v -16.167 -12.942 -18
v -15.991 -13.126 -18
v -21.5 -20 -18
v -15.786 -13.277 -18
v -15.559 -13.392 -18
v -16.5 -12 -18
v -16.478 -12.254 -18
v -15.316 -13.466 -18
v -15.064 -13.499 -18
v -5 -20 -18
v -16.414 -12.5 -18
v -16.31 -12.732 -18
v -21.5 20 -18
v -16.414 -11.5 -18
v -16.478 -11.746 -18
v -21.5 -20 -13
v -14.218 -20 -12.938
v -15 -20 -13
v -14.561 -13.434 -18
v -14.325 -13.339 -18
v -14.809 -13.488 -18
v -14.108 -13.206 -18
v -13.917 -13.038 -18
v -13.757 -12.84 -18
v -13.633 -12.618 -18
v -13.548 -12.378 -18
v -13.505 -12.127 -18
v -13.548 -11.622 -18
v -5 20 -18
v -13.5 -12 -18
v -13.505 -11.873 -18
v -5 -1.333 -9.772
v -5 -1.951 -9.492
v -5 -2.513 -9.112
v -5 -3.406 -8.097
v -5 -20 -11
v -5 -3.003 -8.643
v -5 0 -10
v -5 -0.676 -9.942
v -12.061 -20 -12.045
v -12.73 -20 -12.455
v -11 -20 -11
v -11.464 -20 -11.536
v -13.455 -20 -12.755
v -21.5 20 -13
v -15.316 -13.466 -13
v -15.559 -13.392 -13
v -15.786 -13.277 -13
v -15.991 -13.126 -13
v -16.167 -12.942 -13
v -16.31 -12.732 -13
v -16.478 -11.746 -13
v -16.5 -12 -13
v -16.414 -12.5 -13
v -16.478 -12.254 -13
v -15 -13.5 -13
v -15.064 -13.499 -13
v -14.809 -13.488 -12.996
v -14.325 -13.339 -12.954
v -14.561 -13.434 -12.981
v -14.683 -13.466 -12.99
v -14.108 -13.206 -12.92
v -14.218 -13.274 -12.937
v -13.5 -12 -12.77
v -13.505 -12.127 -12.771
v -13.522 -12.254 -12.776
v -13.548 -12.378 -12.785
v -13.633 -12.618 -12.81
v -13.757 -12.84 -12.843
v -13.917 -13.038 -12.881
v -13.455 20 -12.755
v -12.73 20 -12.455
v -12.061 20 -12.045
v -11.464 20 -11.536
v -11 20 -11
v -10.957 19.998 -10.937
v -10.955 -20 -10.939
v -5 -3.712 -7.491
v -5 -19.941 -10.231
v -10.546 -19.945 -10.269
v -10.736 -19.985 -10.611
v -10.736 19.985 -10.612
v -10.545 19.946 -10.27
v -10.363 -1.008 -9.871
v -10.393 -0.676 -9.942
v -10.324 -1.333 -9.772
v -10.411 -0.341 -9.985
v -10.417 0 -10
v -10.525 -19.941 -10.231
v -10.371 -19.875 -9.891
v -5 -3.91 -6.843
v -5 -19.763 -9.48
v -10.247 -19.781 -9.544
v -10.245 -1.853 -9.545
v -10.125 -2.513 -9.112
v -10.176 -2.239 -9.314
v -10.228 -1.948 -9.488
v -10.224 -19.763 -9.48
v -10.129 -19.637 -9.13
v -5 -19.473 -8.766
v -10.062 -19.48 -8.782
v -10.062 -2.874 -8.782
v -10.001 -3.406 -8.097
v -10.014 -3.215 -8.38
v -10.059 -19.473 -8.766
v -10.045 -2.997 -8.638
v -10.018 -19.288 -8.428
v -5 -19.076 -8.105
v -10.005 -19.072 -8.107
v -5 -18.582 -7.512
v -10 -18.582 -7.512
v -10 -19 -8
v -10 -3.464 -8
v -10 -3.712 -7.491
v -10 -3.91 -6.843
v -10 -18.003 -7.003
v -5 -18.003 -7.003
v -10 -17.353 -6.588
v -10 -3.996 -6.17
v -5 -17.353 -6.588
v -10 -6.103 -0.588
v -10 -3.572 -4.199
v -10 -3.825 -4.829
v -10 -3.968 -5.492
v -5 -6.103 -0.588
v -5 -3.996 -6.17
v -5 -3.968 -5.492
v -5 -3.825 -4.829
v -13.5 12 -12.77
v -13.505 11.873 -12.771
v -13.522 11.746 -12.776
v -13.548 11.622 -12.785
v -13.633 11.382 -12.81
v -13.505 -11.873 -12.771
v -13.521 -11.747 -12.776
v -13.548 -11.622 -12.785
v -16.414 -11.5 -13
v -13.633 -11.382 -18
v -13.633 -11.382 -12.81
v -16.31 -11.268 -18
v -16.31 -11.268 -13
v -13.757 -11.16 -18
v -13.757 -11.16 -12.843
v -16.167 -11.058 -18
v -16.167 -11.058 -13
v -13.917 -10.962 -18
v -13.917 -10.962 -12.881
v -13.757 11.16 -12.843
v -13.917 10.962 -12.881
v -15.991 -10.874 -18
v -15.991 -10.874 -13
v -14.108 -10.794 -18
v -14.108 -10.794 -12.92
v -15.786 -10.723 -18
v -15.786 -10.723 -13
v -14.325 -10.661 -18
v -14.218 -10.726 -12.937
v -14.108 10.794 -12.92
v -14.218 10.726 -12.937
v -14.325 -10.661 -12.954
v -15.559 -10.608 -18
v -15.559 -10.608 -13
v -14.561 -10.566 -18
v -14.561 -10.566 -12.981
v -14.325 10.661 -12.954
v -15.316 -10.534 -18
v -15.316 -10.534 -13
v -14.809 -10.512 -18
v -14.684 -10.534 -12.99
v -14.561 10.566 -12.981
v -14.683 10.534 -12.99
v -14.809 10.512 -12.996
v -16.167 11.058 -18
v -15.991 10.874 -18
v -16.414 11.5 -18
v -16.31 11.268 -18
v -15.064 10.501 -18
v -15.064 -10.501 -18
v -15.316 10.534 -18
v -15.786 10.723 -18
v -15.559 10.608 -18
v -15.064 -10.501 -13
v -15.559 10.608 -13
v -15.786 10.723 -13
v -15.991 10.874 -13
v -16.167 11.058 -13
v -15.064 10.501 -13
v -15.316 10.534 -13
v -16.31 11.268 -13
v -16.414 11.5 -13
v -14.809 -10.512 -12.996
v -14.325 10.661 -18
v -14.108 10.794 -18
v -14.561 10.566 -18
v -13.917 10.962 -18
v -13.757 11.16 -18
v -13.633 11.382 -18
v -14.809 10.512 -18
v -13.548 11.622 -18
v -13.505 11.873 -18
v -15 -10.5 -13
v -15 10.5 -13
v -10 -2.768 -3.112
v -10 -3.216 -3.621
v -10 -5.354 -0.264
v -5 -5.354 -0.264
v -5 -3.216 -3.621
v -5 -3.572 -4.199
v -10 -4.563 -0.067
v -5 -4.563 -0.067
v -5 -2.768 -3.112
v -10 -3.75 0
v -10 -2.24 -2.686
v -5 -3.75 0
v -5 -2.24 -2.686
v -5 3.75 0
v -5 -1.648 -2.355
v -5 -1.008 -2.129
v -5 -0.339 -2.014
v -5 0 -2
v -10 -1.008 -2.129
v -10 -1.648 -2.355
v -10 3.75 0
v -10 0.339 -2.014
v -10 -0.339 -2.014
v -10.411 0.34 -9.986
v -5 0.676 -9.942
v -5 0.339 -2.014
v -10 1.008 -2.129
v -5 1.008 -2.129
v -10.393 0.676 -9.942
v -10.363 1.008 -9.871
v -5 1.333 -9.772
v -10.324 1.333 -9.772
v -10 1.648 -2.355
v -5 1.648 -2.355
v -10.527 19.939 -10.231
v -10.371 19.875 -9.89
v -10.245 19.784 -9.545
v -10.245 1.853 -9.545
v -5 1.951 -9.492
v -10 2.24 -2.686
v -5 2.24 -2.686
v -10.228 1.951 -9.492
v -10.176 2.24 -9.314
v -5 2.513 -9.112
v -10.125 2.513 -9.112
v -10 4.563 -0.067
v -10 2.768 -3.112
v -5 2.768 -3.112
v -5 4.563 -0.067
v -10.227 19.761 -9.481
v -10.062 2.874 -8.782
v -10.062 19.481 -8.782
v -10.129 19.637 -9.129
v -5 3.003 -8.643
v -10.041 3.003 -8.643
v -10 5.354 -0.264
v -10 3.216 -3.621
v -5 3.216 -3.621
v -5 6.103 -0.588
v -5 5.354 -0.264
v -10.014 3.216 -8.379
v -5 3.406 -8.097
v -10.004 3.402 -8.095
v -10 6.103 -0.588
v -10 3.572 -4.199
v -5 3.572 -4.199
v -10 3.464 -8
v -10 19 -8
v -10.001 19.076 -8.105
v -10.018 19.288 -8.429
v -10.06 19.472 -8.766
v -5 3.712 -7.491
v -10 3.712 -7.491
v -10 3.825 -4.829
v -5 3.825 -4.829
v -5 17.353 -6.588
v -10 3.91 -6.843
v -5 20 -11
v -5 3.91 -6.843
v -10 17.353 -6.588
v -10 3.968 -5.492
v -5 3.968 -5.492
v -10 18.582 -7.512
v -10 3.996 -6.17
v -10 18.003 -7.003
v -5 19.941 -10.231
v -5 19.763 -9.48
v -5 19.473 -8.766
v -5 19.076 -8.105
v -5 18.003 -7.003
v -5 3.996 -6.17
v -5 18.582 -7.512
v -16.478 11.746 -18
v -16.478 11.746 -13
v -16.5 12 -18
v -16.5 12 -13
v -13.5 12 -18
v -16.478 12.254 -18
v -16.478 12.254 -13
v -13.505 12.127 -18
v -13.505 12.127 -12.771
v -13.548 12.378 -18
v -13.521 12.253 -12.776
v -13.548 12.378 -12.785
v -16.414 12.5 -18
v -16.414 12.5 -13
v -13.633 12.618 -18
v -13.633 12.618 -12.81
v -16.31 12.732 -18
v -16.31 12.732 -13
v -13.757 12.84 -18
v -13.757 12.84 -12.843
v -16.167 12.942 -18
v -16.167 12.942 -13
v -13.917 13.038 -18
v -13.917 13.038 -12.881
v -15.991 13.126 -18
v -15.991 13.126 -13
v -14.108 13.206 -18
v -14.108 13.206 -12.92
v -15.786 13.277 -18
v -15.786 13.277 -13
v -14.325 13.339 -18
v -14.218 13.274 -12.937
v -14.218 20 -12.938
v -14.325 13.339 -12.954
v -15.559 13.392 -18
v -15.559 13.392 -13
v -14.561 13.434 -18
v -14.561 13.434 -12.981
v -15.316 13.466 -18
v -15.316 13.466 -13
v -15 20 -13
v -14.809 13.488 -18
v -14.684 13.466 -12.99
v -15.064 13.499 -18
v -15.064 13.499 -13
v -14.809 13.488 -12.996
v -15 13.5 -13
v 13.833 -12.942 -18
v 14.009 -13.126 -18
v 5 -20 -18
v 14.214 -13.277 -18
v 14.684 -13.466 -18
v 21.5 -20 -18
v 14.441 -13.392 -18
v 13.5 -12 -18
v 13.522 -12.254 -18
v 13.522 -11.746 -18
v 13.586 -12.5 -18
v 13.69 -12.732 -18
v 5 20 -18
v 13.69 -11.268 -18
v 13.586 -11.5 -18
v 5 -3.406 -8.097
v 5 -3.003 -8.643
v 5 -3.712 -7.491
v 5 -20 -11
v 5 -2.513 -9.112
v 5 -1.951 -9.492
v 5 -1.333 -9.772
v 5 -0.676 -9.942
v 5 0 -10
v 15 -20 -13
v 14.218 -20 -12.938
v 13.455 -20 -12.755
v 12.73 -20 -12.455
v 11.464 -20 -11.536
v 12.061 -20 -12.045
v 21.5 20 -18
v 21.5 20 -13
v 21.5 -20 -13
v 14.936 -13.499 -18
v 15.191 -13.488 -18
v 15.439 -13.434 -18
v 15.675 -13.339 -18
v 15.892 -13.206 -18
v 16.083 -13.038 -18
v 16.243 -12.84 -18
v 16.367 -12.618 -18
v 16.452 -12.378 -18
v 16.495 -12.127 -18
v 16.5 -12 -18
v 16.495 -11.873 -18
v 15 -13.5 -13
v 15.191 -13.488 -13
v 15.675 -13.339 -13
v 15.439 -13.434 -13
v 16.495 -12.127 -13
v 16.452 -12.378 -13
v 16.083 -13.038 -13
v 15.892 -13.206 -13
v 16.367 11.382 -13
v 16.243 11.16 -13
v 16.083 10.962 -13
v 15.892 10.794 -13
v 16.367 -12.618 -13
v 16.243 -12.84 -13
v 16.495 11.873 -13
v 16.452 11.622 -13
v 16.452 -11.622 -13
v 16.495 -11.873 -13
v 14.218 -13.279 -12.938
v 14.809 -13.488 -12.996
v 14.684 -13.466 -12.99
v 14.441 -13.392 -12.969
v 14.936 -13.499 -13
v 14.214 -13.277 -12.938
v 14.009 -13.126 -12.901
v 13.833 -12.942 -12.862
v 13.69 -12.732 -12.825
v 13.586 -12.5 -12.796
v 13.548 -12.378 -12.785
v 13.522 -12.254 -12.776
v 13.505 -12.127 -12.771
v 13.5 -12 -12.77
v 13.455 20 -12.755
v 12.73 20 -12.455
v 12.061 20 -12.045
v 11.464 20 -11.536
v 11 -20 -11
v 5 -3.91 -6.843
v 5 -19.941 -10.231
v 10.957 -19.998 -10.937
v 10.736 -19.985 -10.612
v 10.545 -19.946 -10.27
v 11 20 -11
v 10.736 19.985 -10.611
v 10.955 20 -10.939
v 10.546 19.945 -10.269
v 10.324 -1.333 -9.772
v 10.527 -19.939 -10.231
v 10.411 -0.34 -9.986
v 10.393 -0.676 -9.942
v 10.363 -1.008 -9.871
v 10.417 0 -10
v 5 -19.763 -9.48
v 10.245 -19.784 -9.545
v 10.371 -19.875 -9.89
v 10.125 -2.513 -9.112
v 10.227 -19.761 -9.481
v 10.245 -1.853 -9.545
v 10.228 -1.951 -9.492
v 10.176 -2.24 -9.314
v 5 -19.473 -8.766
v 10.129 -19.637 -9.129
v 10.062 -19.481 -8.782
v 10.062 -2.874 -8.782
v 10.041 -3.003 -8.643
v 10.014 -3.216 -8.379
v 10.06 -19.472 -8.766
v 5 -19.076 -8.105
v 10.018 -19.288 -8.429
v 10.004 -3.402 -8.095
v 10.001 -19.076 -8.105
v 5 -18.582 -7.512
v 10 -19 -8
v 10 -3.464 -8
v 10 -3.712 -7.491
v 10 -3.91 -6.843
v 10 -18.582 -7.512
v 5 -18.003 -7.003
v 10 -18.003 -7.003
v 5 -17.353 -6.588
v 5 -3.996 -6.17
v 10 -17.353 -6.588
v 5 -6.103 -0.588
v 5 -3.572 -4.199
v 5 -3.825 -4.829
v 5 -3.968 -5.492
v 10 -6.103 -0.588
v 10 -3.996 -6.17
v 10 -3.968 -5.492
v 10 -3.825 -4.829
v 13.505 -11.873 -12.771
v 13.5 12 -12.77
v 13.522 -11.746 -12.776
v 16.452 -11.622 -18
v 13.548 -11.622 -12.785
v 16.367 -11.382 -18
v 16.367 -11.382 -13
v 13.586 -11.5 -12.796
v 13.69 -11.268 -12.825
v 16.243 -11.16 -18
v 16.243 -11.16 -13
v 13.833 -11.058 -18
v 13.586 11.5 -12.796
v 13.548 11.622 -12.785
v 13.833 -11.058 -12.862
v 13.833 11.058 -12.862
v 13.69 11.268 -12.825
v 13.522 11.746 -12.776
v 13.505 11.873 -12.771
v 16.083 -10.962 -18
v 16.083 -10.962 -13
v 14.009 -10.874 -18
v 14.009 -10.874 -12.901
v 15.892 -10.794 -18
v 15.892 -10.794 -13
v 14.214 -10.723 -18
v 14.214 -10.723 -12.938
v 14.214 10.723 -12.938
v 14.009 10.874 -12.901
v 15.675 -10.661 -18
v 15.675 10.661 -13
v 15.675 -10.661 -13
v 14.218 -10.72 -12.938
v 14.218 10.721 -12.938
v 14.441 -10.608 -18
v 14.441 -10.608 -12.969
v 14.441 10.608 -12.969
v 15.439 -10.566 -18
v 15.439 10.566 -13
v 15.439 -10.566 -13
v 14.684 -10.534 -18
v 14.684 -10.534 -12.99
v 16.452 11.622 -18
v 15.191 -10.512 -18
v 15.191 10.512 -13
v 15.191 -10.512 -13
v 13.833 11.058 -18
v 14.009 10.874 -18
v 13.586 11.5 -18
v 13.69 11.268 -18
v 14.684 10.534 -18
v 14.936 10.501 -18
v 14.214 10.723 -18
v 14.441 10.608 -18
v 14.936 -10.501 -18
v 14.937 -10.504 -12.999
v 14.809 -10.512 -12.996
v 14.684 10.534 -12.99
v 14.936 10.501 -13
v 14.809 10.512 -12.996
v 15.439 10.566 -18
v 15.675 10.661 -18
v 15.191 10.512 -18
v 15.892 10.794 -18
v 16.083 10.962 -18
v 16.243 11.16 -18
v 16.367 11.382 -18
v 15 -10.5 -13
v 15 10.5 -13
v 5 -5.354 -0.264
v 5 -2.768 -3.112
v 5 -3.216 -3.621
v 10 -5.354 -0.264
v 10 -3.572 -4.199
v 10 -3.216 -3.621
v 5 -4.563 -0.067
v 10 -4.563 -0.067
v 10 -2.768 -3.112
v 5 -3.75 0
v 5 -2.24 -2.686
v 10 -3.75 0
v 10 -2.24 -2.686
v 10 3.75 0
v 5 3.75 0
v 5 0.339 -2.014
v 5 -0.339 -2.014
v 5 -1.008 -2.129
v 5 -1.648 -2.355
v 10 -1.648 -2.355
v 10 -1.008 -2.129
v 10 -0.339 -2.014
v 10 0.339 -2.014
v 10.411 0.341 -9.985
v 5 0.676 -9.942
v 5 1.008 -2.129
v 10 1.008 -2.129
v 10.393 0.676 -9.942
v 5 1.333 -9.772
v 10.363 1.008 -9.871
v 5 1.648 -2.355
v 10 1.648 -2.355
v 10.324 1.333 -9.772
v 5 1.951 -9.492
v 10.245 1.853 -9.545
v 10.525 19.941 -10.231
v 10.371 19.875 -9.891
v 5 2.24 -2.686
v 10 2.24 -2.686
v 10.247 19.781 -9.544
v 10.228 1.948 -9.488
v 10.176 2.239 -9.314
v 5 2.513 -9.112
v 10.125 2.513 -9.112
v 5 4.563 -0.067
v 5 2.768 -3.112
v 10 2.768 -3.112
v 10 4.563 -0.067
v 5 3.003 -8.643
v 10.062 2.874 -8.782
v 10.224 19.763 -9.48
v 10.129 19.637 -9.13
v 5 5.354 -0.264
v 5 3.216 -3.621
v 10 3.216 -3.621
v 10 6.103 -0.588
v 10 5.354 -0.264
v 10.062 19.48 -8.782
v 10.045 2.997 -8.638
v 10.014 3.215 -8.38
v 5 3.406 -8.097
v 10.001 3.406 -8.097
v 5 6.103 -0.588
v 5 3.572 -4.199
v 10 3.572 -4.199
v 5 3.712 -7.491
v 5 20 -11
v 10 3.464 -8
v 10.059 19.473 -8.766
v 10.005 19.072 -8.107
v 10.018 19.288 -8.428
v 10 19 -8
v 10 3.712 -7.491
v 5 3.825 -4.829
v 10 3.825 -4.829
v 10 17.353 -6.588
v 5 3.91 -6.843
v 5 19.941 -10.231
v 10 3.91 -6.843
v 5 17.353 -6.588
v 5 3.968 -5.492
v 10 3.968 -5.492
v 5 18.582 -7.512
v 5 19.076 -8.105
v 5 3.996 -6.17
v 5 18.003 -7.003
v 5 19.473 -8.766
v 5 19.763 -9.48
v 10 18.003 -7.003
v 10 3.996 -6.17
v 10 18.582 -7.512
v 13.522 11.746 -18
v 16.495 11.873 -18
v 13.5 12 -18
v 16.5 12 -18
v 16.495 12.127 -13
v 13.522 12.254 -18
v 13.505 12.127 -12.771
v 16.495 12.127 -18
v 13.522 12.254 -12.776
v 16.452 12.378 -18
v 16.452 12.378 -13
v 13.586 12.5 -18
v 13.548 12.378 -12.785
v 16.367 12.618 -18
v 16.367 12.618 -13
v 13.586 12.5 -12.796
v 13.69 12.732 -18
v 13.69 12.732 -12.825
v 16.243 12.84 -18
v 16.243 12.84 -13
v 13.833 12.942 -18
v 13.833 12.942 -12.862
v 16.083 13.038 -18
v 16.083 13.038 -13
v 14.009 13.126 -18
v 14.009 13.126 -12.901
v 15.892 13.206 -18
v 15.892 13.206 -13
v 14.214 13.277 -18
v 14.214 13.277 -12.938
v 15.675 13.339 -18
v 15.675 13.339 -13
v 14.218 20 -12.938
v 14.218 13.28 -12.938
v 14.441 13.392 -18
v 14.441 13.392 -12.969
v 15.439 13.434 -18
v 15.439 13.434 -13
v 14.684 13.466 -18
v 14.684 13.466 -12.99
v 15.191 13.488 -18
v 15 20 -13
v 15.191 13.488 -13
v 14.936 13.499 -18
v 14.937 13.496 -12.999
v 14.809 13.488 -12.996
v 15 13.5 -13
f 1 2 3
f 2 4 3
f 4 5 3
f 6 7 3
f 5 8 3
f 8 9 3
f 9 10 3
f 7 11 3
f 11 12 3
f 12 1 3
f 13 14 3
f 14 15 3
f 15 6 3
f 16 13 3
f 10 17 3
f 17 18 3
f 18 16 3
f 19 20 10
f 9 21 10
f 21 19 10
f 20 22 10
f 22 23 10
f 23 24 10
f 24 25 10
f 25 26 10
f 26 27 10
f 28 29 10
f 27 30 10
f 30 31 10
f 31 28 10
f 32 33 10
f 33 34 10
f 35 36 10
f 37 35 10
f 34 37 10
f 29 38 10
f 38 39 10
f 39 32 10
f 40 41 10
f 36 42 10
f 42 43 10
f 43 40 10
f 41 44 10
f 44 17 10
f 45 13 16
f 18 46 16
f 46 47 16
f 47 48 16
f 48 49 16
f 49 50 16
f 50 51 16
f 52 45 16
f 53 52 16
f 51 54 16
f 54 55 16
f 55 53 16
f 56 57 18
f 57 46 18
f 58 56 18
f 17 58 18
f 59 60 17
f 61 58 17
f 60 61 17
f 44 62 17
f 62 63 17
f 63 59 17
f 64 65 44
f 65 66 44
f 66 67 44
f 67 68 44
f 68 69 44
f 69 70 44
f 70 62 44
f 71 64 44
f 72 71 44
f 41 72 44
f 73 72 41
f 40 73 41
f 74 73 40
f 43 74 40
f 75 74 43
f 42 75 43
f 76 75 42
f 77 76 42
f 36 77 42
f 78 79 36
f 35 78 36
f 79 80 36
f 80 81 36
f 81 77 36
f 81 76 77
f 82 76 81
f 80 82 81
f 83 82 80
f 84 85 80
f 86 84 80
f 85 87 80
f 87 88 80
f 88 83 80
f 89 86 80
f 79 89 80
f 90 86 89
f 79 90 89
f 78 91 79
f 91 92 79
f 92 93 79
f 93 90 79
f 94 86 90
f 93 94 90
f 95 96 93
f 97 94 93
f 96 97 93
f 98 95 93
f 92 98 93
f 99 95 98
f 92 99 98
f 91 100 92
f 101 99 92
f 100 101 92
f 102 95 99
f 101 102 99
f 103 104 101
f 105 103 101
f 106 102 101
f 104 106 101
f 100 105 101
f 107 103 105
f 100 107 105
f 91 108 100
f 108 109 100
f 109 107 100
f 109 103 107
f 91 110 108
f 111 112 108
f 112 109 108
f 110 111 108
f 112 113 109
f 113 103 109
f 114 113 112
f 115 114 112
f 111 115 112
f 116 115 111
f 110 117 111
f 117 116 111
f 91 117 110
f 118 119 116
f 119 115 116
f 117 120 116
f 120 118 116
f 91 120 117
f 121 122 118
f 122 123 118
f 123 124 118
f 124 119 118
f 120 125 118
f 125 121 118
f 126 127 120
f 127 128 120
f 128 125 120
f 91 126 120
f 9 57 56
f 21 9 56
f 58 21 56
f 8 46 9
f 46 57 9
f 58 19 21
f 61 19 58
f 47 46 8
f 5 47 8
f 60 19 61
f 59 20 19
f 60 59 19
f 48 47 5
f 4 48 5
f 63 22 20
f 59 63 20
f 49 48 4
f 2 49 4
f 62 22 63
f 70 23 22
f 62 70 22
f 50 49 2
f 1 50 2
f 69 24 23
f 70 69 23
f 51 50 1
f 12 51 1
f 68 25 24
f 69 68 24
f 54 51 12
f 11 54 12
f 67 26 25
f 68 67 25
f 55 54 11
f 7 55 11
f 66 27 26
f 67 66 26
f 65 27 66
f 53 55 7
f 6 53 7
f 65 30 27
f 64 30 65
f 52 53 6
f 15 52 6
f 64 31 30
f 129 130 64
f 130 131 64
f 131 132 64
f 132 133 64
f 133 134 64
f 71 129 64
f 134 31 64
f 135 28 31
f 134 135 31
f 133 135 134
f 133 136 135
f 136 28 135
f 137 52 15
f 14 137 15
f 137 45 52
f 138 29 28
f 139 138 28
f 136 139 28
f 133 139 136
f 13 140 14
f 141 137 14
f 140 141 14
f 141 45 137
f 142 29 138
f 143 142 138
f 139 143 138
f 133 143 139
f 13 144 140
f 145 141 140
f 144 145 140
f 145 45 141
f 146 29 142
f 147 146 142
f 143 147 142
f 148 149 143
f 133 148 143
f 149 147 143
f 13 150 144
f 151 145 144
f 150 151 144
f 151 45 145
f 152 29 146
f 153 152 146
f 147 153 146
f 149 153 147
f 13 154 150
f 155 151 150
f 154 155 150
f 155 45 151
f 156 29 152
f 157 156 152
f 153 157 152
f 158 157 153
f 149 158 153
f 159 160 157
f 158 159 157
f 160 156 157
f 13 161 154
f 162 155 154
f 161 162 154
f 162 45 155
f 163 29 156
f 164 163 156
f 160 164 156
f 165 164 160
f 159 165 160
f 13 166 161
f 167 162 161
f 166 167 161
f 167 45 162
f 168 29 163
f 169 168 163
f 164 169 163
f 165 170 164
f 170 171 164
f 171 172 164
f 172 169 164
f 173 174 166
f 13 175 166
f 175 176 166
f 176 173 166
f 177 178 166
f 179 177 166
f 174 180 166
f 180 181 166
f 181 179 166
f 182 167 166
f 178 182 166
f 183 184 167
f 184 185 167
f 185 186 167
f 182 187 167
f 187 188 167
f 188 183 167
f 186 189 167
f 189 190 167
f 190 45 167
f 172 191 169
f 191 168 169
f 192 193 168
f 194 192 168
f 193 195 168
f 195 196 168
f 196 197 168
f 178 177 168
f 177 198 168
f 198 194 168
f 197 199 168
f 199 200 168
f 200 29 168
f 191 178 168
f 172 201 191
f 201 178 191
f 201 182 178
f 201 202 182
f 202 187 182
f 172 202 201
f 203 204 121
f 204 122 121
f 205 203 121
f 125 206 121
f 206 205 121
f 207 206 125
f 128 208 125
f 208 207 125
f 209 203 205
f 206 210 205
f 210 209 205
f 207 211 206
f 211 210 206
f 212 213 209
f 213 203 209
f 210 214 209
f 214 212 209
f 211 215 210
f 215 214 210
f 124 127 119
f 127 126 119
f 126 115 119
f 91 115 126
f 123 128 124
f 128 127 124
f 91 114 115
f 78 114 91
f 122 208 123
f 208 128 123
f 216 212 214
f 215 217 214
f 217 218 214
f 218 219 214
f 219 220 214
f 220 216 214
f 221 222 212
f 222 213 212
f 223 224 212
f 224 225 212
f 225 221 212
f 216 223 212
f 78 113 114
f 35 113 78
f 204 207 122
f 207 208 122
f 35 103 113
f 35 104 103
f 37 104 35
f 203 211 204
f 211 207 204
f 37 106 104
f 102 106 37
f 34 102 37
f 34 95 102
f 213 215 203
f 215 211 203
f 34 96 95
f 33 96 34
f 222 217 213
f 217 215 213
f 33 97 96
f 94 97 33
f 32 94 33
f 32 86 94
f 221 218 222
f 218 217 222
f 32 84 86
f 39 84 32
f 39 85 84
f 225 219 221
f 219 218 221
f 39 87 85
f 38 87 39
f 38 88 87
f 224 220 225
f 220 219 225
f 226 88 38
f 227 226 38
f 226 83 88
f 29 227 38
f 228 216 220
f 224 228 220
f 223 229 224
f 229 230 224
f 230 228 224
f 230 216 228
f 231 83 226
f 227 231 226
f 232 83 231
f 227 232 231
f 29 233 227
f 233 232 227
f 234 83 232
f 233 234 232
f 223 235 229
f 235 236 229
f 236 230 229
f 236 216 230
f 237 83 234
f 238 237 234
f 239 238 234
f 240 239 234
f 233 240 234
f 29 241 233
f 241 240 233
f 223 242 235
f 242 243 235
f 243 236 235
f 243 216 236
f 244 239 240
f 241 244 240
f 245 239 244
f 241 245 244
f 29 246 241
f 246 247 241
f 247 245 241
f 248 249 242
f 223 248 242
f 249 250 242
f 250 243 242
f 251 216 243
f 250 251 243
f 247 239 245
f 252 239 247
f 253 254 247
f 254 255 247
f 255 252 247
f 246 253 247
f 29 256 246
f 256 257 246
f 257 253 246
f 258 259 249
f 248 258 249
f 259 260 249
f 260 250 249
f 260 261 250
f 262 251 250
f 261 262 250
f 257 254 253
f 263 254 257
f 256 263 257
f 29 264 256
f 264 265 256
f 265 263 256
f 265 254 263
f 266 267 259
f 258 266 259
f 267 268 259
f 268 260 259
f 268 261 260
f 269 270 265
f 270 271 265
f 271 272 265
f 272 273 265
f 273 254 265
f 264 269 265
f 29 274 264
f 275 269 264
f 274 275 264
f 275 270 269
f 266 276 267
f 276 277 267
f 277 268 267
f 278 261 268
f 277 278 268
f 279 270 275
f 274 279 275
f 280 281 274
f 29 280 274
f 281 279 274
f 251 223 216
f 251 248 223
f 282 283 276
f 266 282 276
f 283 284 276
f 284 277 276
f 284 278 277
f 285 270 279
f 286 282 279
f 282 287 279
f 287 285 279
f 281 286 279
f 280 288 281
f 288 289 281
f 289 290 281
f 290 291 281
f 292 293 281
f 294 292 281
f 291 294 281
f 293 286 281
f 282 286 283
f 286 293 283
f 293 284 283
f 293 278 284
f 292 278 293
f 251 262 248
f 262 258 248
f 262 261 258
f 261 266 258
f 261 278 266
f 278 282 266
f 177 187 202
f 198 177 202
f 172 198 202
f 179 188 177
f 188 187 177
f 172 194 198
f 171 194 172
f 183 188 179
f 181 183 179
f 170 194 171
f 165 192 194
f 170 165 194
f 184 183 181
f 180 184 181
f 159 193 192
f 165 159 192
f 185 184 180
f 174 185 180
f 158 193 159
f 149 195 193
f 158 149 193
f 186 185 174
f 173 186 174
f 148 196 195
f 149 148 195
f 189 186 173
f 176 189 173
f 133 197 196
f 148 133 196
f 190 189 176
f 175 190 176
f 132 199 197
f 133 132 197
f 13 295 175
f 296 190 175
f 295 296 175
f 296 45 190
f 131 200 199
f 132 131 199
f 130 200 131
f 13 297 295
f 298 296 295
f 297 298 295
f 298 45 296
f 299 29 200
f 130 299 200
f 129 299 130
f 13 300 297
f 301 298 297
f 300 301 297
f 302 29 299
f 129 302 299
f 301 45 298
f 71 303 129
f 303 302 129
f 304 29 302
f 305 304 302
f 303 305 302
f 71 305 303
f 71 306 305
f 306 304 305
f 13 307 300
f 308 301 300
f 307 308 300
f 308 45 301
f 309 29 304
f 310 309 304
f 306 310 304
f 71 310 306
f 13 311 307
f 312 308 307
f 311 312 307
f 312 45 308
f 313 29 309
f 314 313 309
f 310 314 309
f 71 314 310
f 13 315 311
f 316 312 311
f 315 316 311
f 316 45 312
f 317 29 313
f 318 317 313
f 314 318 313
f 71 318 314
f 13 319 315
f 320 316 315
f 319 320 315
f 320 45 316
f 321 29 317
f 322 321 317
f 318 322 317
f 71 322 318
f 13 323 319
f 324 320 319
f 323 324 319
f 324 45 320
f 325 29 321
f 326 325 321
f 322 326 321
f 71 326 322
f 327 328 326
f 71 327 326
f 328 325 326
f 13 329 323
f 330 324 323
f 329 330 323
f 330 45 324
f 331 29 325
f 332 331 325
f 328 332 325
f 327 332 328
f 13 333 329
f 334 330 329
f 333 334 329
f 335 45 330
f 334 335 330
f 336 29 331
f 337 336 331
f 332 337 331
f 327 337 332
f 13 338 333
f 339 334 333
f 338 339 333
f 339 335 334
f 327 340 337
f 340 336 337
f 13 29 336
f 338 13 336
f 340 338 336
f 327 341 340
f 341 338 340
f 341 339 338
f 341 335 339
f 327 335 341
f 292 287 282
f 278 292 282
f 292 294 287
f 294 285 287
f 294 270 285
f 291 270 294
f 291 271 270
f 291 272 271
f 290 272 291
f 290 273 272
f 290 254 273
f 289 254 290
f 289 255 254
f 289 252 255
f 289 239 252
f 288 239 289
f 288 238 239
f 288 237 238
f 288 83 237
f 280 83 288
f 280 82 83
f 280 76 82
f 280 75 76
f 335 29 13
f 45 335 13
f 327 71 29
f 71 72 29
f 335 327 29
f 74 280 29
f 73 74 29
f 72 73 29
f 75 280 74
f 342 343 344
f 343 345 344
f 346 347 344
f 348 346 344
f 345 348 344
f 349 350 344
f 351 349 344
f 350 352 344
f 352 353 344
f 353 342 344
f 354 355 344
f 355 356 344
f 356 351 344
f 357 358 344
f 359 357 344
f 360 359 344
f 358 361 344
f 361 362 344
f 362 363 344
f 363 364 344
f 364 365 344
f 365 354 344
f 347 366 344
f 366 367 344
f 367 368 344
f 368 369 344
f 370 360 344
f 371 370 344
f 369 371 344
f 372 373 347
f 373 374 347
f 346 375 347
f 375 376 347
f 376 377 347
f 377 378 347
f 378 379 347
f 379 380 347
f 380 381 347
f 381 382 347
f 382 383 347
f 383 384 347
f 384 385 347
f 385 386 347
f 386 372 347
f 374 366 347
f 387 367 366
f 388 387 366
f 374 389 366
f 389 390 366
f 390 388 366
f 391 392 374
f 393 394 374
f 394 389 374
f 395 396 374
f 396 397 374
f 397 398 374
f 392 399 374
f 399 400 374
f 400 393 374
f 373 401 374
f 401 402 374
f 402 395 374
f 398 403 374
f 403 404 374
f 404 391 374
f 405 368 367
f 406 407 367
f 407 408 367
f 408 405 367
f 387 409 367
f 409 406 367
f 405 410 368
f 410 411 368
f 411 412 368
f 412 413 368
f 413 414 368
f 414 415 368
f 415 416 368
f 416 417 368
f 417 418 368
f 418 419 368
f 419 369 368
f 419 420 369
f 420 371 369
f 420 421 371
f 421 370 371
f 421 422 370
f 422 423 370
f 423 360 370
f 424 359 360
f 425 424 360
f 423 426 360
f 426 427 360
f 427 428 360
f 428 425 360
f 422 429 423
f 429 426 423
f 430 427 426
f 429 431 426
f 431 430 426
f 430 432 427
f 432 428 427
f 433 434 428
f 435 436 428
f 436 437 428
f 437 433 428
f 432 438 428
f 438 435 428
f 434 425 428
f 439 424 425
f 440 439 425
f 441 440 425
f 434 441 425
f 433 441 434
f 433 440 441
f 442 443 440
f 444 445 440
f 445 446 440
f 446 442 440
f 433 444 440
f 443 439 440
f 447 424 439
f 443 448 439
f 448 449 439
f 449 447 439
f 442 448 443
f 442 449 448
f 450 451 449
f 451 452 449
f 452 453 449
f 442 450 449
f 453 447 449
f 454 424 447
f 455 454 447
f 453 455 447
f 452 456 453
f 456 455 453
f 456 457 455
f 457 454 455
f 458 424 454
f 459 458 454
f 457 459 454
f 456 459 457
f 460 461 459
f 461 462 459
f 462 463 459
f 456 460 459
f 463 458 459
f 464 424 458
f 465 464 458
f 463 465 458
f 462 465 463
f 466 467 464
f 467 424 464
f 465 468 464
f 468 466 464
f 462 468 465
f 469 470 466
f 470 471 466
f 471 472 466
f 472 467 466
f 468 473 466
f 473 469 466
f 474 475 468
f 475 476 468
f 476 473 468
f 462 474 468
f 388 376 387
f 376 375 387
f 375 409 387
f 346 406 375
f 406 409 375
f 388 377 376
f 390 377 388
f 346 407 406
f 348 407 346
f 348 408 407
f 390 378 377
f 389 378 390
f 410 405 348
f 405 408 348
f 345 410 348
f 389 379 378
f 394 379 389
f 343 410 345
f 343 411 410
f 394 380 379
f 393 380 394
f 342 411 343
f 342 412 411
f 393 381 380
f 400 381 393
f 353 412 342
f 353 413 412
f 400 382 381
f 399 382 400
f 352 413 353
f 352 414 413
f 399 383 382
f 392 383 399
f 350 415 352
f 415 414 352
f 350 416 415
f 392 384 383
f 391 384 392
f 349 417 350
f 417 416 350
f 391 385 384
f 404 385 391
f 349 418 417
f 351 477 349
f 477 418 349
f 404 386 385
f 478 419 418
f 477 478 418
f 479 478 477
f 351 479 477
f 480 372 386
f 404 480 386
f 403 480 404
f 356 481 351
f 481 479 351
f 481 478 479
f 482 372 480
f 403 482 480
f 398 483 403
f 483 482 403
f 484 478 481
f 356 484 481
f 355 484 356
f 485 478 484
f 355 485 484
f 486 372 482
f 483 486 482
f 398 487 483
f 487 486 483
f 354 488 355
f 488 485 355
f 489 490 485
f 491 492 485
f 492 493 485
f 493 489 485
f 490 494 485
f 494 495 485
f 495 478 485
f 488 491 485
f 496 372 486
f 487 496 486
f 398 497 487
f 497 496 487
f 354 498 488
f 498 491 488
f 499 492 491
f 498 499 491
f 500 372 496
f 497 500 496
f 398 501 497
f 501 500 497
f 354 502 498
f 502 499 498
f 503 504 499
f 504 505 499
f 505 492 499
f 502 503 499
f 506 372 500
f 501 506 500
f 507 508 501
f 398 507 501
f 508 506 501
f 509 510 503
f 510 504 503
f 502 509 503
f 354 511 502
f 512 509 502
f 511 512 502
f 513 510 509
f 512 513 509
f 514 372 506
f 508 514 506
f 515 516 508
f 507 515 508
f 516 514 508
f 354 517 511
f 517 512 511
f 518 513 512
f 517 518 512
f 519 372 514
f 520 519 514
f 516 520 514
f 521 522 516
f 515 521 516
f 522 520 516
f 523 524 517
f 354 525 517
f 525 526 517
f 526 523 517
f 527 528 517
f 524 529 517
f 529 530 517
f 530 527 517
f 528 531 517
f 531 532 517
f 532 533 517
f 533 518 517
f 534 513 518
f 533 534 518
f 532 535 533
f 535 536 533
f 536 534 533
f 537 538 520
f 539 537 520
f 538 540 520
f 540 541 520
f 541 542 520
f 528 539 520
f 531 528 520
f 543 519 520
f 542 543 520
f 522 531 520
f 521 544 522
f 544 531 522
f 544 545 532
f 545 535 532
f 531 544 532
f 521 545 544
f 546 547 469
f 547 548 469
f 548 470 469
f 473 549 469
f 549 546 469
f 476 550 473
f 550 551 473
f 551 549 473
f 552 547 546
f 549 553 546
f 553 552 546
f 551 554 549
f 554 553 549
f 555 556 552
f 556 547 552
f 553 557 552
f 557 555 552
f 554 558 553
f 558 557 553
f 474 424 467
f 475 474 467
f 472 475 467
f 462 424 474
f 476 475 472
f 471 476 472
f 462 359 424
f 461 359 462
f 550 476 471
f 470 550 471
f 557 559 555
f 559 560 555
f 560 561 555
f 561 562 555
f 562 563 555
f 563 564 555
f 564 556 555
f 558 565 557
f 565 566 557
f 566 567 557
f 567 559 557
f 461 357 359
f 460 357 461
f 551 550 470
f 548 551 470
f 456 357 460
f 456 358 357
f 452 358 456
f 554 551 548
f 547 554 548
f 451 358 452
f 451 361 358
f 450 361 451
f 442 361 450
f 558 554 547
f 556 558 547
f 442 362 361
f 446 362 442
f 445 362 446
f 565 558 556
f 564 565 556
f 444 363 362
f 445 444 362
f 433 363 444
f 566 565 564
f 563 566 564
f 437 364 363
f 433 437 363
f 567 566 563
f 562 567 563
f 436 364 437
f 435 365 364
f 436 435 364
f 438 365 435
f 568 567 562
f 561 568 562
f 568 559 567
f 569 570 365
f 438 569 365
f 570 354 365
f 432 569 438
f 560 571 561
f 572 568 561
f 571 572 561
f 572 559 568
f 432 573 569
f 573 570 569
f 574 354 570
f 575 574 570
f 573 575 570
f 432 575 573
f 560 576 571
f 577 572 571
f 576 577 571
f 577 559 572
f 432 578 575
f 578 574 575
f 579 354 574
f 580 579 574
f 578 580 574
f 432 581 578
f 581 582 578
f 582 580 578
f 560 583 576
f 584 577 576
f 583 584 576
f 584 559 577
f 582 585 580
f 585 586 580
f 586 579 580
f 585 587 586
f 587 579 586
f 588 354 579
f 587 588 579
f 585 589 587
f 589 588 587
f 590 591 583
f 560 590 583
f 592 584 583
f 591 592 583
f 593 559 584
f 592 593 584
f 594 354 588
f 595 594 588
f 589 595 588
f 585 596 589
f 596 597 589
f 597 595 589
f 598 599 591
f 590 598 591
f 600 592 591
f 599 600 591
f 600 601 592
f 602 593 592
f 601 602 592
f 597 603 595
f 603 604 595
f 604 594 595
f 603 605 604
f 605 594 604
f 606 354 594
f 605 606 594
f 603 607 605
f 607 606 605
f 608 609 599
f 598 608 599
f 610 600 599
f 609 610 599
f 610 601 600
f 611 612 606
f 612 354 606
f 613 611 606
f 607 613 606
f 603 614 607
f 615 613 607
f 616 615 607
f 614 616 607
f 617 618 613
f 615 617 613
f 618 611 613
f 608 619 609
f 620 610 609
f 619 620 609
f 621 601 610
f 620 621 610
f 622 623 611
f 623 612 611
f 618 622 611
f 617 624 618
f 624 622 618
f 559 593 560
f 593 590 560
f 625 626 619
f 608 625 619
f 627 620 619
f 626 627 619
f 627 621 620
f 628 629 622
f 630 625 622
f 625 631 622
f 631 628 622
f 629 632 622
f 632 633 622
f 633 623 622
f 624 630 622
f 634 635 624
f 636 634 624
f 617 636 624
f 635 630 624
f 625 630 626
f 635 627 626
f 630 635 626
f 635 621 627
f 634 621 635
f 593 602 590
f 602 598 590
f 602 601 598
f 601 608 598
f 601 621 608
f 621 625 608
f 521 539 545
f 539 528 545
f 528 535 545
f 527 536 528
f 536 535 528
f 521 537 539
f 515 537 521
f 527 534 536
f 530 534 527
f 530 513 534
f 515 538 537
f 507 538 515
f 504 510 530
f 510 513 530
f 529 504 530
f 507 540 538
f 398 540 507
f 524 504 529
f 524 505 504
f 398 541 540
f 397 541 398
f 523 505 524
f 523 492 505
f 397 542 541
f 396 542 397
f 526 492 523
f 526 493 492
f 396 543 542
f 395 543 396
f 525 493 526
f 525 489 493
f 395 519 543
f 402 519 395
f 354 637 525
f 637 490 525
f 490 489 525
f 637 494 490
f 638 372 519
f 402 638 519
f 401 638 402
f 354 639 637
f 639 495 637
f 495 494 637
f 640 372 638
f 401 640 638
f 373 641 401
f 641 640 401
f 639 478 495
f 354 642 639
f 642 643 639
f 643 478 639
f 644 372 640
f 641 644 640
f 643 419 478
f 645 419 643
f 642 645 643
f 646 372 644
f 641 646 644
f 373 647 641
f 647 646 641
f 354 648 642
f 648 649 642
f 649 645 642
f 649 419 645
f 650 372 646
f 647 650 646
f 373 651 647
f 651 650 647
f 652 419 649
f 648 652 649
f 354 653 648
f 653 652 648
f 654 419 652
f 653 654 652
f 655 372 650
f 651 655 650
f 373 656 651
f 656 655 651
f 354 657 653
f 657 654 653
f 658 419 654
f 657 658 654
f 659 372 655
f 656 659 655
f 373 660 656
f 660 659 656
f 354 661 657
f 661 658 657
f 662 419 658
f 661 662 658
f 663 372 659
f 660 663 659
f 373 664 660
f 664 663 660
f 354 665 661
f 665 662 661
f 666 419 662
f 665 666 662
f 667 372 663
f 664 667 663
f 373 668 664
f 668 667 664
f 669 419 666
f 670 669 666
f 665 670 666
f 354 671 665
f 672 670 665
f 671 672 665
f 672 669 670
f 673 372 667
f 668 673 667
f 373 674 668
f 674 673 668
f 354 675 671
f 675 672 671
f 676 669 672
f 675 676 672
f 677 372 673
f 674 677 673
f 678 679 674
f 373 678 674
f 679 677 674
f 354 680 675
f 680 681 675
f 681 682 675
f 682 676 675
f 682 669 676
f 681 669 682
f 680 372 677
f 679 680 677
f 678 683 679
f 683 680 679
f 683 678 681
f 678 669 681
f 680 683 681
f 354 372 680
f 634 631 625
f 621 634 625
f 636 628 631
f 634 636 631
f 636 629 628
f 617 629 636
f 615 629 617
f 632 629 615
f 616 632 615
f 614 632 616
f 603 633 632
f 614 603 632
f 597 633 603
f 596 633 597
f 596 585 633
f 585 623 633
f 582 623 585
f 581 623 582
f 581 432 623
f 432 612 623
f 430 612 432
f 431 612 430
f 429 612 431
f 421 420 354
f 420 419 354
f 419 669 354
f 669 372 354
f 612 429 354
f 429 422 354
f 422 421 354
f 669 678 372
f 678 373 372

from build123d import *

# Parameters (mm, degrees)
BOSS_EXTRUDE1_DEPTH     = 20
BOSS_EXTRUDE1_2_DEPTH   = 20
CUT_EXTRUDE1_DEPTH      = 42.427647773
CUT_EXTRUDE1_DEPTH_BACK = 42.427647773
SKETCH2_R               = 4
CUT_EXTRUDE2_DEPTH      = 35.441980257
CUT_EXTRUDE2_DEPTH_BACK = 35.441980257
SKETCH3_R               = 1.5
CUT_EXTRUDE3_DEPTH      = 42.427647865
CUT_EXTRUDE3_DEPTH_BACK = 42.427647865
FILLET2_R               = 5
FILLET3_R               = 5


with BuildPart() as part:
    # Sketch1 → Boss-Extrude1 (new, symmetric)
    with BuildSketch(Plane(origin=(0, 0, 0), x_dir=(1, 0, 0), z_dir=(0, 1, 0))):
        with BuildLine():
            Line((-5, 18), (-5, 0))
            Line((-5, 0), (-10, 0))
            Line((-10, 0), (-10, 8))
            ThreePointArc((-10, 8), (-11.464466094, 11.535533906), (-15, 13))
            Line((-15, 13), (-21.5, 13))
            Line((-21.5, 13), (-21.5, 18))
            Line((-21.5, 18), (-5, 18))
        make_face()
    extrude(amount=BOSS_EXTRUDE1_DEPTH, both=True)


with BuildPart() as body_2:
    # Sketch1 → Boss-Extrude1 2 (new, symmetric)
    with BuildSketch(Plane(origin=(0, 0, 0), x_dir=(1, 0, 0), z_dir=(0, 1, 0))):
        with BuildLine():
            Line((21.5, 18), (5, 18))
            Line((5, 18), (5, 0))
            Line((5, 0), (10, 0))
            Line((10, 0), (10, 8))
            ThreePointArc((10, 8), (11.464466094, 11.535533906), (15, 13))
            Line((15, 13), (21.5, 13))
            Line((21.5, 13), (21.5, 18))
        make_face()
    extrude(amount=BOSS_EXTRUDE1_2_DEPTH, both=True)


with BuildPart() as cut_extrude1_tool:
    # Sketch2 → Cut-Extrude1 (new, two sides: drawn at the far end of the back side and taken through both)
    with BuildSketch(Plane(origin=(10, 0, 0), x_dir=(0, 0, -1), z_dir=(1, 0, 0)).offset(-CUT_EXTRUDE1_DEPTH_BACK)):
        with Locations((6, 0)):
            Circle(SKETCH2_R)
    extrude(amount=CUT_EXTRUDE1_DEPTH + CUT_EXTRUDE1_DEPTH_BACK)


with BuildPart() as part_1:
    add(part.part)

    # Cut-Extrude1: cut by cut_extrude1_tool
    add(cut_extrude1_tool.part, mode=Mode.SUBTRACT)


with BuildPart() as body_2_1:
    add(body_2.part)

    # Cut-Extrude1: cut by cut_extrude1_tool
    add(cut_extrude1_tool.part, mode=Mode.SUBTRACT)


with BuildPart() as cut_extrude2_tool:
    # Sketch3 → Cut-Extrude2 (new, two sides: drawn at the far end of the back side and taken through both)
    with BuildSketch(Plane(origin=(0, 0, -18), x_dir=(-1, 0, 0), z_dir=(0, 0, -1)).offset(-CUT_EXTRUDE2_DEPTH_BACK)):
        with Locations(Location((-15, -12, 0), (0, 0, 90))):
            Circle(SKETCH3_R)
        with Locations(Location((-15, 12, 0), (0, 0, 90))):
            Circle(SKETCH3_R)
        with Locations(Location((15, 12, 0), (0, 0, 90))):
            Circle(SKETCH3_R)
        with Locations(Location((15, -12, 0), (0, 0, 90))):
            Circle(SKETCH3_R)
    extrude(amount=CUT_EXTRUDE2_DEPTH + CUT_EXTRUDE2_DEPTH_BACK)


with BuildPart() as part_2:
    add(part_1.part)

    # Cut-Extrude2: cut by cut_extrude2_tool
    add(cut_extrude2_tool.part, mode=Mode.SUBTRACT)


with BuildPart() as body_2_2:
    add(body_2_1.part)

    # Cut-Extrude2: cut by cut_extrude2_tool
    add(cut_extrude2_tool.part, mode=Mode.SUBTRACT)


with BuildPart() as cut_extrude3_tool:
    # Sketch4 → Cut-Extrude3 (new, two sides: drawn at the far end of the back side and taken through both)
    with BuildSketch(Plane(origin=(10, 0, 0), x_dir=(0, 0, -1), z_dir=(1, 0, 0)).offset(-CUT_EXTRUDE3_DEPTH_BACK)):
        Polygon((8, 20), (0, 5), (0, 20), align=None)
        Polygon((8, -20), (0, -5), (0, -20), align=None)
    extrude(amount=CUT_EXTRUDE3_DEPTH + CUT_EXTRUDE3_DEPTH_BACK)


with BuildPart() as part_3:
    add(part_2.part)

    # Cut-Extrude3: cut by cut_extrude3_tool
    add(cut_extrude3_tool.part, mode=Mode.SUBTRACT)

    # Fillet3
    fillet3_edges = [part_3.edges().sort_by_distance(p)[0] for p in [
        (-7.5, -20, -8),
        (-7.5, 20, -8),
        (-7.5, 5, 0),
        (-7.5, -5, 0),
    ]]
    fillet(fillet3_edges, radius=FILLET3_R)


with BuildPart() as body_2_3:
    add(body_2_2.part)

    # Cut-Extrude3: cut by cut_extrude3_tool
    add(cut_extrude3_tool.part, mode=Mode.SUBTRACT)

    # Fillet2
    fillet2_edges = [body_2_3.edges().sort_by_distance(p)[0] for p in [
        (7.5, -20, -8),
        (7.5, 20, -8),
        (7.5, 5, 0),
        (7.5, -5, 0),
    ]]
    fillet(fillet2_edges, radius=FILLET2_R)


solid = Compound([part_3.part, body_2_3.part])
